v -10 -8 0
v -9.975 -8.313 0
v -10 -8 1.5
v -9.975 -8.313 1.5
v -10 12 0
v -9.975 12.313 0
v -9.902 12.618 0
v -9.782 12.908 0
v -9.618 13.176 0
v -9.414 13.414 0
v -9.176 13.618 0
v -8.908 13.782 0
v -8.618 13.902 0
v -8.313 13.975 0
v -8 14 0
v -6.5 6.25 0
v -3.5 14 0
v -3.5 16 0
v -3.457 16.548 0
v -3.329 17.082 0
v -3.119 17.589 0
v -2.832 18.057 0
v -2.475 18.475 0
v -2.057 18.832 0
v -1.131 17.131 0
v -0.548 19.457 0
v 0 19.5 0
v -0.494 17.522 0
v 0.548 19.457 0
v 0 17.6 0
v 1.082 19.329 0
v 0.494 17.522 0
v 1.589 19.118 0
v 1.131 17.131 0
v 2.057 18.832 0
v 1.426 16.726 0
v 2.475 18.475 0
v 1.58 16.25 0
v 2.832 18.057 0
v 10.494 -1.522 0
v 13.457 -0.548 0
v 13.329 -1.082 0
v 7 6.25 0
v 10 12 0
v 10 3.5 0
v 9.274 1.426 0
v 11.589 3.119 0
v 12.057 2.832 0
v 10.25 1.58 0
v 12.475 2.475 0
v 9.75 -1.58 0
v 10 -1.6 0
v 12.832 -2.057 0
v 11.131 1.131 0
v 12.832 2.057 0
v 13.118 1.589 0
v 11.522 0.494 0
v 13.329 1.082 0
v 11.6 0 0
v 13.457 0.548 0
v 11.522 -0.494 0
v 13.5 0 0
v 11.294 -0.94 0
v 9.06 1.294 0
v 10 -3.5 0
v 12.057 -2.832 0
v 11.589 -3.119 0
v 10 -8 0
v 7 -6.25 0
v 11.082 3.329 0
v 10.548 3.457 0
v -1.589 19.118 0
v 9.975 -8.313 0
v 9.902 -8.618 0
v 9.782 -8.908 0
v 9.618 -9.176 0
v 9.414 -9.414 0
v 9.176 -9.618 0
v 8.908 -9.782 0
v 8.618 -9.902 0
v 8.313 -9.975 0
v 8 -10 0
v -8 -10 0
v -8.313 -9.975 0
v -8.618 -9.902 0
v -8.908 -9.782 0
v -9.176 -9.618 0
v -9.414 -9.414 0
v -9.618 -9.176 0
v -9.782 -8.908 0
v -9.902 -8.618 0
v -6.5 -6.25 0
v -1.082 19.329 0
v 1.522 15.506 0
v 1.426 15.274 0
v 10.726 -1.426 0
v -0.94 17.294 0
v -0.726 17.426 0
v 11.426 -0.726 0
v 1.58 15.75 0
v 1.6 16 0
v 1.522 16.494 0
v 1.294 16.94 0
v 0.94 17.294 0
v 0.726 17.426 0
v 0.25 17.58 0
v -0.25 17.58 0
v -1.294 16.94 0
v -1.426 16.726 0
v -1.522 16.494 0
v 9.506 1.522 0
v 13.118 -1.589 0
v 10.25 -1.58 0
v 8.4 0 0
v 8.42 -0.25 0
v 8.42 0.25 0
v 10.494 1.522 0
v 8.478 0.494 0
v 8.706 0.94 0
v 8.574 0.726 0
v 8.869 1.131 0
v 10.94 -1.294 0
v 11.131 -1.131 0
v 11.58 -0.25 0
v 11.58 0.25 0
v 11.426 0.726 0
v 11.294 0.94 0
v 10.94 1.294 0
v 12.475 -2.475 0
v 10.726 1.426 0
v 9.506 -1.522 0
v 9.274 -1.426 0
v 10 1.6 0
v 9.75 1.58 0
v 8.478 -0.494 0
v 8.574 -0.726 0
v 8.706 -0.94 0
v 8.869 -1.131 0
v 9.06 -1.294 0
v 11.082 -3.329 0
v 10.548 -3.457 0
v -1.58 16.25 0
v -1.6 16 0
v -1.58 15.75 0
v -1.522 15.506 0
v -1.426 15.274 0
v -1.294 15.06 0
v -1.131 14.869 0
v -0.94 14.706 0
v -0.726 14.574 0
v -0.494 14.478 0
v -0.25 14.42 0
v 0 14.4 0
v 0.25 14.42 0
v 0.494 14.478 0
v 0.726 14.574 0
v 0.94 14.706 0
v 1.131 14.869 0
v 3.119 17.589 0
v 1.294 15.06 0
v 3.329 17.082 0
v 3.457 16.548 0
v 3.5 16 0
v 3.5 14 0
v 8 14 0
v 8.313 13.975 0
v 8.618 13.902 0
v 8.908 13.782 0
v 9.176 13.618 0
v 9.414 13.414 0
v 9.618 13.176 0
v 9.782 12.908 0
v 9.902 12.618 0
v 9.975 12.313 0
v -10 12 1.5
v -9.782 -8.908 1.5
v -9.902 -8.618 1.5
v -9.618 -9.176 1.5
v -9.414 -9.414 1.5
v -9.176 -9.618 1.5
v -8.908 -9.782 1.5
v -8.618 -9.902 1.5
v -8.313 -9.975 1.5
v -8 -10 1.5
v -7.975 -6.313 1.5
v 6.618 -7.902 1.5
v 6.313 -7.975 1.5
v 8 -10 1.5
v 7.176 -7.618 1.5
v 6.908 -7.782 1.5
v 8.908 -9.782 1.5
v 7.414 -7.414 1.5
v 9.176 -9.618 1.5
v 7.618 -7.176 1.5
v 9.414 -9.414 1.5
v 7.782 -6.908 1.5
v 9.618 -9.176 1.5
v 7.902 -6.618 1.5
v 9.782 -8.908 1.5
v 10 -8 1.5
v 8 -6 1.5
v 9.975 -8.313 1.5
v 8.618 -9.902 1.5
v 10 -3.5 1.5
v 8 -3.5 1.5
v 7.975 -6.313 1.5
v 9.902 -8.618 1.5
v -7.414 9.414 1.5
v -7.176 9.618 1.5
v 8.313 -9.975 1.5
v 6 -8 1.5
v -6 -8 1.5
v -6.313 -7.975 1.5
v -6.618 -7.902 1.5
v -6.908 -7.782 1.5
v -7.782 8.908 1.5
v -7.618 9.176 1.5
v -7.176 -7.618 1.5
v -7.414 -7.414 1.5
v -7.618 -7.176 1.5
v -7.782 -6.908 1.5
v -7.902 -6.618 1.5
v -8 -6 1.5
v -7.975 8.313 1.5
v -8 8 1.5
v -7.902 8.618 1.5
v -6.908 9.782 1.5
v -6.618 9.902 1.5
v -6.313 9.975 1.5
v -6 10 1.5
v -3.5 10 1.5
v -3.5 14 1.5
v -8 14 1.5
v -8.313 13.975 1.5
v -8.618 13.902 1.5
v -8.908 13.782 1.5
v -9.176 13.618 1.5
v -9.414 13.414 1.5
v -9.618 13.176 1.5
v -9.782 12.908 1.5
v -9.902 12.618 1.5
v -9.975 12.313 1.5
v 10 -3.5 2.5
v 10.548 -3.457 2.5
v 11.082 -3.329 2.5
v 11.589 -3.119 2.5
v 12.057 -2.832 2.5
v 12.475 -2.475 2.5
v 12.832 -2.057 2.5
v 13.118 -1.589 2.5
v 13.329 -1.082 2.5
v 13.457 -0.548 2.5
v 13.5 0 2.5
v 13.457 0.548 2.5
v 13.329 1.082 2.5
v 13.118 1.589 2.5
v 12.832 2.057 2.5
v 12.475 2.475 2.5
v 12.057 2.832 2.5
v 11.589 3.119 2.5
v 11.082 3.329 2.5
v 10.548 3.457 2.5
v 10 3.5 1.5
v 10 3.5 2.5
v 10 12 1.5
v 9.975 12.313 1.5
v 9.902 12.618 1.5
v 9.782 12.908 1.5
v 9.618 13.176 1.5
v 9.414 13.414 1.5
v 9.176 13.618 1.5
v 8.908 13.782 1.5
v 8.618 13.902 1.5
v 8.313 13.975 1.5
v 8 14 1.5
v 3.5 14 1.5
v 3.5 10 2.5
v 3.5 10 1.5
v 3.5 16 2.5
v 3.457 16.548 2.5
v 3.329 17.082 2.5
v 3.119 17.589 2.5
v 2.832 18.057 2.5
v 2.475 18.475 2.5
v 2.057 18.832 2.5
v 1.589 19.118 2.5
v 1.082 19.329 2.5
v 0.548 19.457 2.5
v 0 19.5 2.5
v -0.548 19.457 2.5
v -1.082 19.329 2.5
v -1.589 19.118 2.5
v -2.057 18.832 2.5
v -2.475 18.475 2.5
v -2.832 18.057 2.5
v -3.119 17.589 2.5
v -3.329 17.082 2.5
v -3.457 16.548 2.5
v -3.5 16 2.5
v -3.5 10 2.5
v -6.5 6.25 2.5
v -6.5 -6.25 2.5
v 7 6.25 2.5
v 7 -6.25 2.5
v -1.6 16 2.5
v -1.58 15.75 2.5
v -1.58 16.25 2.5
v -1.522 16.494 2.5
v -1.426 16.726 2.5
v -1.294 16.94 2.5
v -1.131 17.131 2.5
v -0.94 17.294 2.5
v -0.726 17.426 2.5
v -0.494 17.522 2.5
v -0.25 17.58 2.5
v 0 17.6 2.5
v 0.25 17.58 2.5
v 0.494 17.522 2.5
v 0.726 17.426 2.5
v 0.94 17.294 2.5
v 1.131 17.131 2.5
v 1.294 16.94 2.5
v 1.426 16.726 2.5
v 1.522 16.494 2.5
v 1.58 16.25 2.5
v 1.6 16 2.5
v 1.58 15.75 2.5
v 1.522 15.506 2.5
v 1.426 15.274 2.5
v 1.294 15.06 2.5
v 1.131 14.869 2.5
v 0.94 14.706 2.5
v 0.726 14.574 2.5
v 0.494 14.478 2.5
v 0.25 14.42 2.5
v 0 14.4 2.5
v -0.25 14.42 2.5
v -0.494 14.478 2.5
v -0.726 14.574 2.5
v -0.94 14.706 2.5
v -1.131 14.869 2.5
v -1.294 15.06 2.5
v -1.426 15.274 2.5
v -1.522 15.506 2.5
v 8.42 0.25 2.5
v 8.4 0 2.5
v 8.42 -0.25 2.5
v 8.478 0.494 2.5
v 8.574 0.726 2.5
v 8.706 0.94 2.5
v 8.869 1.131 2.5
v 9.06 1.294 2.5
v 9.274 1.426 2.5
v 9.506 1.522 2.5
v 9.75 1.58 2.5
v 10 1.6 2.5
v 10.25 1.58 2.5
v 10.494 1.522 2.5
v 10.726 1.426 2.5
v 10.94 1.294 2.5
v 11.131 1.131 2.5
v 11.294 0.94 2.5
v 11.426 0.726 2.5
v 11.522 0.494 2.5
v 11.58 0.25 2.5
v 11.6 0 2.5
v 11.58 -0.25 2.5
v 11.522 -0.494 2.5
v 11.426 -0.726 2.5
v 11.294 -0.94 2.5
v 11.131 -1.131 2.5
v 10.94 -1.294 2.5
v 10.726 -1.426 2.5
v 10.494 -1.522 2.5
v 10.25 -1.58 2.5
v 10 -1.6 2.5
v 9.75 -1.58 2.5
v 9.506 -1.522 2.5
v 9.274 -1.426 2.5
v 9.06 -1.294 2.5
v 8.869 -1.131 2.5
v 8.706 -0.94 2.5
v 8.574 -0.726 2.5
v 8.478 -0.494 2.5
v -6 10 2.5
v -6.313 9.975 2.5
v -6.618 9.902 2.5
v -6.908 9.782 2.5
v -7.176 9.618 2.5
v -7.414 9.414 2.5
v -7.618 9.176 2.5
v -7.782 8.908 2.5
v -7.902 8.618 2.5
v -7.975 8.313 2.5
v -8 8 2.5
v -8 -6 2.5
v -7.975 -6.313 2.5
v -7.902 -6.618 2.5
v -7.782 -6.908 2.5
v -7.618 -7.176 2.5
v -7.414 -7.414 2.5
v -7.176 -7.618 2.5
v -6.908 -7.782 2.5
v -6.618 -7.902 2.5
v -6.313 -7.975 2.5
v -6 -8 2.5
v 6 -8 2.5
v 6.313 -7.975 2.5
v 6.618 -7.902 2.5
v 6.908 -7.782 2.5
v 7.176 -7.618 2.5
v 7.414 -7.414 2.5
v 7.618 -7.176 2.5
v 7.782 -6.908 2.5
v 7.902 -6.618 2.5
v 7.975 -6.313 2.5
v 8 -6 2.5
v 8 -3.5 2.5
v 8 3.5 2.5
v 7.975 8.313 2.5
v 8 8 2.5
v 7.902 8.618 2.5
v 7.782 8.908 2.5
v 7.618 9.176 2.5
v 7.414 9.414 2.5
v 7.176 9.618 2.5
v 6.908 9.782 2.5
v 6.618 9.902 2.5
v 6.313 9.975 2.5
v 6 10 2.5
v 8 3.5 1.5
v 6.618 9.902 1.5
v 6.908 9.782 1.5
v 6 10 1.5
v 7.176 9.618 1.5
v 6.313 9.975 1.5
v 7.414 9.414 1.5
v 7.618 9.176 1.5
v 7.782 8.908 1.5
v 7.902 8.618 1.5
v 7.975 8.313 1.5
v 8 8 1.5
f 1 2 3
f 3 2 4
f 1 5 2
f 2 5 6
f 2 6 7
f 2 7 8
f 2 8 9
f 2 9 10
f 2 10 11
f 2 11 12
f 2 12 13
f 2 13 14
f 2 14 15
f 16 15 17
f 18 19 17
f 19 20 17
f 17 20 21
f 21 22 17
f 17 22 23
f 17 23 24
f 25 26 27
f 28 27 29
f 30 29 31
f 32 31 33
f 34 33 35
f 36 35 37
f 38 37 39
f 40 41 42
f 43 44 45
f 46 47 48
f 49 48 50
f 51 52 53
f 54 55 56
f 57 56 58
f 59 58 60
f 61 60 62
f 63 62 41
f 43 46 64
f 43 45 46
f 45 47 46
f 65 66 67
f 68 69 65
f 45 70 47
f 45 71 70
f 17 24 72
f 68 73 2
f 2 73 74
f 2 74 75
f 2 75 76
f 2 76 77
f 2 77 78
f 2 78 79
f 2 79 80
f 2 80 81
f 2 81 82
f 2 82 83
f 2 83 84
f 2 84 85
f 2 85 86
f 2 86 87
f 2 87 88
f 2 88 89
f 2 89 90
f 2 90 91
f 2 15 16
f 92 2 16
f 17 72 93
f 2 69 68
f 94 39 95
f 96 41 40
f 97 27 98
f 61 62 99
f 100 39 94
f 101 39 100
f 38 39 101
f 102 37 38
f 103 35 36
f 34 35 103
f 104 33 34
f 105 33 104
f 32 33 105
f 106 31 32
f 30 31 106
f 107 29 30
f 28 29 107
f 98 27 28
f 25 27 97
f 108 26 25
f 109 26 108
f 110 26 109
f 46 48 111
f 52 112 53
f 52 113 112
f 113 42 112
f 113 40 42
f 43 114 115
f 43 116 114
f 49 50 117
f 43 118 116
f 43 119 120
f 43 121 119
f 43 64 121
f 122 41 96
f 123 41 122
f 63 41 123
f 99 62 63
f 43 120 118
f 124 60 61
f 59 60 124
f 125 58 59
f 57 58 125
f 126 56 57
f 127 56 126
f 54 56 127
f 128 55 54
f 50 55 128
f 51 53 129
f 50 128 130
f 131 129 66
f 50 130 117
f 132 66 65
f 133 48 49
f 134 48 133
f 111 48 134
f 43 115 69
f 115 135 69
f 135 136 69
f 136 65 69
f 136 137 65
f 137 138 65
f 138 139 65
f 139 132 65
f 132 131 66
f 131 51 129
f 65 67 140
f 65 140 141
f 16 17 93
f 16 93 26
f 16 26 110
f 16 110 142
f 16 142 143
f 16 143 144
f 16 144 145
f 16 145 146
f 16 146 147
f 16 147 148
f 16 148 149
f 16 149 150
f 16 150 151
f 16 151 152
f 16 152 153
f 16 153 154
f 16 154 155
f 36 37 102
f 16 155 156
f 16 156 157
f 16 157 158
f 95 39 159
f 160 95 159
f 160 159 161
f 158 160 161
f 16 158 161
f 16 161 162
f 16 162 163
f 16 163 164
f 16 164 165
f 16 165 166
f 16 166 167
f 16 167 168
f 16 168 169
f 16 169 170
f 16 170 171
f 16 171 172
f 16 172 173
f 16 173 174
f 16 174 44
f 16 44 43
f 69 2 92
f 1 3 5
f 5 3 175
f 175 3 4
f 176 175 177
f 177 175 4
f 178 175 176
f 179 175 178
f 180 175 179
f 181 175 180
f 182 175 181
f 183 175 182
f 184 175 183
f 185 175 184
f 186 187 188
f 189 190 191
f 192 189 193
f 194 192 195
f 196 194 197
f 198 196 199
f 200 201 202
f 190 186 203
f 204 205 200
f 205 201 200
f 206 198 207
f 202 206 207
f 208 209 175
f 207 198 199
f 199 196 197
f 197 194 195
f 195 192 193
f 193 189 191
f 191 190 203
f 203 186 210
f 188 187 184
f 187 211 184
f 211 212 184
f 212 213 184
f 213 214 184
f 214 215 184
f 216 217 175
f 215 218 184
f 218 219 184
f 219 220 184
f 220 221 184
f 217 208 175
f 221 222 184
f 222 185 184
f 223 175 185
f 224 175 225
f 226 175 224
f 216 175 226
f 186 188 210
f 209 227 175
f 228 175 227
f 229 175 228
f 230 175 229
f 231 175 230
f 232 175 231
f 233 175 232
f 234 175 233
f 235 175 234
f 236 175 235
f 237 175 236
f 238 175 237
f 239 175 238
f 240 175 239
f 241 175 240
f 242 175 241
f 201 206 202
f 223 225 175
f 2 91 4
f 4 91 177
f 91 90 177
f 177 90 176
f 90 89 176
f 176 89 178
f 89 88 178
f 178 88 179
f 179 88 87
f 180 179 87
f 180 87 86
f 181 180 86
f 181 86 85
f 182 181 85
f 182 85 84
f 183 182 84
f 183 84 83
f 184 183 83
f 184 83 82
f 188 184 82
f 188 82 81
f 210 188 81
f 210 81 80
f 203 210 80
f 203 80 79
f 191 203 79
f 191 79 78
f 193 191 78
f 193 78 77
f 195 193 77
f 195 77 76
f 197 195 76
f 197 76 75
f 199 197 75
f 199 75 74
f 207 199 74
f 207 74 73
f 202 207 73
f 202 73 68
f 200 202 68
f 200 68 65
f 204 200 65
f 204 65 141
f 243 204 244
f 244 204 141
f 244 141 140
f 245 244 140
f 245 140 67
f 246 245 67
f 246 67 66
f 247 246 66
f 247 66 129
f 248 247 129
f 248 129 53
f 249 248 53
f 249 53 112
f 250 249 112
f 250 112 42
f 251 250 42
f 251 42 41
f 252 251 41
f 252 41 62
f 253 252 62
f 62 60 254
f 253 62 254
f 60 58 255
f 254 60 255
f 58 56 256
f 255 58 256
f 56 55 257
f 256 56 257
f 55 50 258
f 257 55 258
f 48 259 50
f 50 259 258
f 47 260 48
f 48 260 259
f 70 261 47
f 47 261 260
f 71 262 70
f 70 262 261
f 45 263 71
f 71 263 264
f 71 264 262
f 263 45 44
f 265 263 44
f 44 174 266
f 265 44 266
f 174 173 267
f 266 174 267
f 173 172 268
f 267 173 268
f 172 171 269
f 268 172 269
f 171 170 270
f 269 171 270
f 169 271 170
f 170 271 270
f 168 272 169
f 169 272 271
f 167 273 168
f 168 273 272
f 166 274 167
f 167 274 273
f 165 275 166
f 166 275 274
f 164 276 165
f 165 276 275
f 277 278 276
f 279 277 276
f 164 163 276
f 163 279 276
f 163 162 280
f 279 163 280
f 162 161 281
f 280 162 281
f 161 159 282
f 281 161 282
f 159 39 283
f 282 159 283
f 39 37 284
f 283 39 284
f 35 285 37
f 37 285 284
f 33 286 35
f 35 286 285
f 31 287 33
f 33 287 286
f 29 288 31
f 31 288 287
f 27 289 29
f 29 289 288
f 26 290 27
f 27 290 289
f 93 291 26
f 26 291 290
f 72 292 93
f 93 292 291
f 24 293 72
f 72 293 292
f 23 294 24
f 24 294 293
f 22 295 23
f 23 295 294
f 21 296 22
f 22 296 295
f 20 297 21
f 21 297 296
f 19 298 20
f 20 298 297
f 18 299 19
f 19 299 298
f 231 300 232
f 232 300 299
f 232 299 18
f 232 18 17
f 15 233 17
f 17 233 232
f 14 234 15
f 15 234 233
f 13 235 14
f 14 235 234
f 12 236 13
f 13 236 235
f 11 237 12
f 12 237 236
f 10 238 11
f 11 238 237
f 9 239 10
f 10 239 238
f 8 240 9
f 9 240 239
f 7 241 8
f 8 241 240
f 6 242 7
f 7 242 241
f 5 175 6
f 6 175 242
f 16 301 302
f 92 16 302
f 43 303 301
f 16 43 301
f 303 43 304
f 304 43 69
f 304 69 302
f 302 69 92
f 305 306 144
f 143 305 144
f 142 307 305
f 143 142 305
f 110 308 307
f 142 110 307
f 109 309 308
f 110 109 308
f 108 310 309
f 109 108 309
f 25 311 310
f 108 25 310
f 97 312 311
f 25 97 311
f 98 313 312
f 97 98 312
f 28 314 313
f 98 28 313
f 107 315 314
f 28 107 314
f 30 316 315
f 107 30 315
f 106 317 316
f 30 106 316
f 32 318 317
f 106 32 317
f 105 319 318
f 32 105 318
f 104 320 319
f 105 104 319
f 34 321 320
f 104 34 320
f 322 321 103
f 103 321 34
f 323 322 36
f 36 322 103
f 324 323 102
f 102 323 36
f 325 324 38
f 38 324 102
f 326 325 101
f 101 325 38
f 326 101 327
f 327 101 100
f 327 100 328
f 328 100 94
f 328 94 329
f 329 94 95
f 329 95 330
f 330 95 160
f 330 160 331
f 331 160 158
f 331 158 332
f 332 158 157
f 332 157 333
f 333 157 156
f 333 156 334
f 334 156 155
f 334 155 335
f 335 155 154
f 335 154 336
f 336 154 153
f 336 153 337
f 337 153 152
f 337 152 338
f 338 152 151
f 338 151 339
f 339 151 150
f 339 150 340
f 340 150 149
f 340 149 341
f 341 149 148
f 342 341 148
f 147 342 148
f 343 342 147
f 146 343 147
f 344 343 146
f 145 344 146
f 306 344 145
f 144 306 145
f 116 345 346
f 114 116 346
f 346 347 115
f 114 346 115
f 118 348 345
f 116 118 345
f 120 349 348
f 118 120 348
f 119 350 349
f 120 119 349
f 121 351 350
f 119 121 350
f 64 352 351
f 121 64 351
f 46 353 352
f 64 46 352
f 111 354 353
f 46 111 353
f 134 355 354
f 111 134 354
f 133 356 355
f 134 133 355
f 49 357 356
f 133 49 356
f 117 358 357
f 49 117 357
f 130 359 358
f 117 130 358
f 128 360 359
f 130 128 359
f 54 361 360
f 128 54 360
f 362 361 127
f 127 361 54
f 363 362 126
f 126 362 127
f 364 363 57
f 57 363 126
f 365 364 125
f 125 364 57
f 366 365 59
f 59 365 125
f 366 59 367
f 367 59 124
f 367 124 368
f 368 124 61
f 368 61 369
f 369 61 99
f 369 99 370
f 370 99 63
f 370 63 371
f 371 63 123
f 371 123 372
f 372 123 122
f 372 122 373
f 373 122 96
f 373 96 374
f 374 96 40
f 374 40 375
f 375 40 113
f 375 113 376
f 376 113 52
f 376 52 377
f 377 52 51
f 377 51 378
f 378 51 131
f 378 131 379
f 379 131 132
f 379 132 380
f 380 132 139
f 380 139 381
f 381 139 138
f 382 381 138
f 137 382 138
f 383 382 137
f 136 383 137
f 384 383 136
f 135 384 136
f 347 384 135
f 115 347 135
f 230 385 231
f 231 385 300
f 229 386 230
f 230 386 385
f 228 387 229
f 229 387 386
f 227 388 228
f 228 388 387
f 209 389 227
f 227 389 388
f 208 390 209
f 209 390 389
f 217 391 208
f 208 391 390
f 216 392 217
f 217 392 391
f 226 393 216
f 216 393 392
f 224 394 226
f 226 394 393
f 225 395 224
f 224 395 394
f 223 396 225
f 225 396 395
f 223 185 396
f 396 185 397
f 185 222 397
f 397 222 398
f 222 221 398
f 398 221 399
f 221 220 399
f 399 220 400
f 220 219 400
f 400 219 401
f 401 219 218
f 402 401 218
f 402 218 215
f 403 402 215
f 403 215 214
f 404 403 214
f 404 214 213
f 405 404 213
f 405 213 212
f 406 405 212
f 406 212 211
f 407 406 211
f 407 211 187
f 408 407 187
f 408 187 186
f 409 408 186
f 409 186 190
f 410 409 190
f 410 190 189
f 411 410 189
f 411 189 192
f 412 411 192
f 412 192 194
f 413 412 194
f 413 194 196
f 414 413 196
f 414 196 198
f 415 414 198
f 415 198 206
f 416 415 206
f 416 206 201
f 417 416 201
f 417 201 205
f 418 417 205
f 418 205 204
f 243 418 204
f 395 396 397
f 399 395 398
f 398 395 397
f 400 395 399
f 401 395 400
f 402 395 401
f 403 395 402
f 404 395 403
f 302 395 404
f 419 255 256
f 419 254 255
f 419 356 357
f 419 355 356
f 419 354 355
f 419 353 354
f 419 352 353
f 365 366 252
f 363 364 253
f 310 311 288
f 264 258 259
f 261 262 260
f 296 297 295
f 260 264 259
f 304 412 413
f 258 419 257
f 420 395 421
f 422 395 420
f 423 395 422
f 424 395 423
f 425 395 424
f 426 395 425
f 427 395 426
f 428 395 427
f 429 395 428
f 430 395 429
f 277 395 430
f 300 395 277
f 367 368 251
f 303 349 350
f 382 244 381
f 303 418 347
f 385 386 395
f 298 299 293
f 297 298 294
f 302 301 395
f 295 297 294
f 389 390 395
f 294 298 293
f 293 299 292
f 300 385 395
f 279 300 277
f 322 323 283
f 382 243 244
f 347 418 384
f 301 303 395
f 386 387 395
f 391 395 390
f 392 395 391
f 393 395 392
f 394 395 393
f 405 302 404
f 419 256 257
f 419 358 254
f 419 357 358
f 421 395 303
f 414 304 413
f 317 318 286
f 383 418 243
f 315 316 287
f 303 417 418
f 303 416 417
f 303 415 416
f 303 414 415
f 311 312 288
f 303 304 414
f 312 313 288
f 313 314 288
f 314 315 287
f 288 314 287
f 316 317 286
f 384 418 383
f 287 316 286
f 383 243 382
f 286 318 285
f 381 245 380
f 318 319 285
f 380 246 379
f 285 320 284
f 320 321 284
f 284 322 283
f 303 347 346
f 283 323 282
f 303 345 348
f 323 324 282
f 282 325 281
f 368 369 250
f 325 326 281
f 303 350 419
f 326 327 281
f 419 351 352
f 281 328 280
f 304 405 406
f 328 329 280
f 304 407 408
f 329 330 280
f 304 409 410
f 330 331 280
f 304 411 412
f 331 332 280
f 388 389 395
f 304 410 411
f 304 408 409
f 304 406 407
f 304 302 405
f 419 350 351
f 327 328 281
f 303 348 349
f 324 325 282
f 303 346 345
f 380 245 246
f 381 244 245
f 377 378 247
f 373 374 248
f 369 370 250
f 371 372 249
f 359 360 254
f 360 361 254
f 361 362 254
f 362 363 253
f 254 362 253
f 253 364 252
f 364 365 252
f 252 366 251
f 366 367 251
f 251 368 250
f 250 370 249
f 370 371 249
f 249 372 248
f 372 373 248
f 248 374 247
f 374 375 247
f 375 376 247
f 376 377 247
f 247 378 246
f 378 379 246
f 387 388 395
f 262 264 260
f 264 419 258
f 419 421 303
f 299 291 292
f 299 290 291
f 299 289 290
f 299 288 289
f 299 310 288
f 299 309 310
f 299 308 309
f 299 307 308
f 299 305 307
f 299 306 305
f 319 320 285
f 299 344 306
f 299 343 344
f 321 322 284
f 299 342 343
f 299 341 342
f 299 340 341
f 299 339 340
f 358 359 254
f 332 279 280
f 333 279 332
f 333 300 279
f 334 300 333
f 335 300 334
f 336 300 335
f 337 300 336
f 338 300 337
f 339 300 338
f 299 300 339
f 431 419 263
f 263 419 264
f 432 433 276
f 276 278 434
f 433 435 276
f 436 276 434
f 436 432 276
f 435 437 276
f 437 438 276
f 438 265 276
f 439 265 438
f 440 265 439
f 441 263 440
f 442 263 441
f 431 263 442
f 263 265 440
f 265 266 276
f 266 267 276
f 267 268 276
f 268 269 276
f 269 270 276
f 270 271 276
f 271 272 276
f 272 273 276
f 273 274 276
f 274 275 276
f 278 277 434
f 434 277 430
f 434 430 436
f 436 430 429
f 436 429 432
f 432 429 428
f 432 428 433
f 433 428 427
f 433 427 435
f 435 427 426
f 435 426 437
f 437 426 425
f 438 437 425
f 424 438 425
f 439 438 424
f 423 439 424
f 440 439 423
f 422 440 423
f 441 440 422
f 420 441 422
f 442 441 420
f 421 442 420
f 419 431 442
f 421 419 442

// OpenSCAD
$fn = 40;



difference() {
	union() {
		union() {
			slit(10,3.5,2.5);
			rotate(a=[0,0,90]) slit(9+7,3.5,2.5);
		}

		hull() {
			translate([-8,-8,0])
			slit(16,2,1.5);
			translate([-8,12,0])
			slit(16,2,1.5);
		}

		hull() {
			translate([-6,-6,1])
			slit(12,2,1.5);
			translate([-6,8,1])
			slit(12,2,1.5);
		}
	}


	union() {
		translate([10,0,-1]) cylinder(h = 10, r=3.2/2);
		translate([0,16,-1]) cylinder(h = 10, r=3.2/2);	
	}

	translate([-6.5,-6.25,-0.5])
	cube(size=[13.5,12.5,5]);
}





module slit(length,radius,height) {
	hull() {
		translate([length,0,0]) cylinder(h = height, r=radius);
		translate([0,0,0]) cylinder(h = height, r=radius);
	}
}


	
